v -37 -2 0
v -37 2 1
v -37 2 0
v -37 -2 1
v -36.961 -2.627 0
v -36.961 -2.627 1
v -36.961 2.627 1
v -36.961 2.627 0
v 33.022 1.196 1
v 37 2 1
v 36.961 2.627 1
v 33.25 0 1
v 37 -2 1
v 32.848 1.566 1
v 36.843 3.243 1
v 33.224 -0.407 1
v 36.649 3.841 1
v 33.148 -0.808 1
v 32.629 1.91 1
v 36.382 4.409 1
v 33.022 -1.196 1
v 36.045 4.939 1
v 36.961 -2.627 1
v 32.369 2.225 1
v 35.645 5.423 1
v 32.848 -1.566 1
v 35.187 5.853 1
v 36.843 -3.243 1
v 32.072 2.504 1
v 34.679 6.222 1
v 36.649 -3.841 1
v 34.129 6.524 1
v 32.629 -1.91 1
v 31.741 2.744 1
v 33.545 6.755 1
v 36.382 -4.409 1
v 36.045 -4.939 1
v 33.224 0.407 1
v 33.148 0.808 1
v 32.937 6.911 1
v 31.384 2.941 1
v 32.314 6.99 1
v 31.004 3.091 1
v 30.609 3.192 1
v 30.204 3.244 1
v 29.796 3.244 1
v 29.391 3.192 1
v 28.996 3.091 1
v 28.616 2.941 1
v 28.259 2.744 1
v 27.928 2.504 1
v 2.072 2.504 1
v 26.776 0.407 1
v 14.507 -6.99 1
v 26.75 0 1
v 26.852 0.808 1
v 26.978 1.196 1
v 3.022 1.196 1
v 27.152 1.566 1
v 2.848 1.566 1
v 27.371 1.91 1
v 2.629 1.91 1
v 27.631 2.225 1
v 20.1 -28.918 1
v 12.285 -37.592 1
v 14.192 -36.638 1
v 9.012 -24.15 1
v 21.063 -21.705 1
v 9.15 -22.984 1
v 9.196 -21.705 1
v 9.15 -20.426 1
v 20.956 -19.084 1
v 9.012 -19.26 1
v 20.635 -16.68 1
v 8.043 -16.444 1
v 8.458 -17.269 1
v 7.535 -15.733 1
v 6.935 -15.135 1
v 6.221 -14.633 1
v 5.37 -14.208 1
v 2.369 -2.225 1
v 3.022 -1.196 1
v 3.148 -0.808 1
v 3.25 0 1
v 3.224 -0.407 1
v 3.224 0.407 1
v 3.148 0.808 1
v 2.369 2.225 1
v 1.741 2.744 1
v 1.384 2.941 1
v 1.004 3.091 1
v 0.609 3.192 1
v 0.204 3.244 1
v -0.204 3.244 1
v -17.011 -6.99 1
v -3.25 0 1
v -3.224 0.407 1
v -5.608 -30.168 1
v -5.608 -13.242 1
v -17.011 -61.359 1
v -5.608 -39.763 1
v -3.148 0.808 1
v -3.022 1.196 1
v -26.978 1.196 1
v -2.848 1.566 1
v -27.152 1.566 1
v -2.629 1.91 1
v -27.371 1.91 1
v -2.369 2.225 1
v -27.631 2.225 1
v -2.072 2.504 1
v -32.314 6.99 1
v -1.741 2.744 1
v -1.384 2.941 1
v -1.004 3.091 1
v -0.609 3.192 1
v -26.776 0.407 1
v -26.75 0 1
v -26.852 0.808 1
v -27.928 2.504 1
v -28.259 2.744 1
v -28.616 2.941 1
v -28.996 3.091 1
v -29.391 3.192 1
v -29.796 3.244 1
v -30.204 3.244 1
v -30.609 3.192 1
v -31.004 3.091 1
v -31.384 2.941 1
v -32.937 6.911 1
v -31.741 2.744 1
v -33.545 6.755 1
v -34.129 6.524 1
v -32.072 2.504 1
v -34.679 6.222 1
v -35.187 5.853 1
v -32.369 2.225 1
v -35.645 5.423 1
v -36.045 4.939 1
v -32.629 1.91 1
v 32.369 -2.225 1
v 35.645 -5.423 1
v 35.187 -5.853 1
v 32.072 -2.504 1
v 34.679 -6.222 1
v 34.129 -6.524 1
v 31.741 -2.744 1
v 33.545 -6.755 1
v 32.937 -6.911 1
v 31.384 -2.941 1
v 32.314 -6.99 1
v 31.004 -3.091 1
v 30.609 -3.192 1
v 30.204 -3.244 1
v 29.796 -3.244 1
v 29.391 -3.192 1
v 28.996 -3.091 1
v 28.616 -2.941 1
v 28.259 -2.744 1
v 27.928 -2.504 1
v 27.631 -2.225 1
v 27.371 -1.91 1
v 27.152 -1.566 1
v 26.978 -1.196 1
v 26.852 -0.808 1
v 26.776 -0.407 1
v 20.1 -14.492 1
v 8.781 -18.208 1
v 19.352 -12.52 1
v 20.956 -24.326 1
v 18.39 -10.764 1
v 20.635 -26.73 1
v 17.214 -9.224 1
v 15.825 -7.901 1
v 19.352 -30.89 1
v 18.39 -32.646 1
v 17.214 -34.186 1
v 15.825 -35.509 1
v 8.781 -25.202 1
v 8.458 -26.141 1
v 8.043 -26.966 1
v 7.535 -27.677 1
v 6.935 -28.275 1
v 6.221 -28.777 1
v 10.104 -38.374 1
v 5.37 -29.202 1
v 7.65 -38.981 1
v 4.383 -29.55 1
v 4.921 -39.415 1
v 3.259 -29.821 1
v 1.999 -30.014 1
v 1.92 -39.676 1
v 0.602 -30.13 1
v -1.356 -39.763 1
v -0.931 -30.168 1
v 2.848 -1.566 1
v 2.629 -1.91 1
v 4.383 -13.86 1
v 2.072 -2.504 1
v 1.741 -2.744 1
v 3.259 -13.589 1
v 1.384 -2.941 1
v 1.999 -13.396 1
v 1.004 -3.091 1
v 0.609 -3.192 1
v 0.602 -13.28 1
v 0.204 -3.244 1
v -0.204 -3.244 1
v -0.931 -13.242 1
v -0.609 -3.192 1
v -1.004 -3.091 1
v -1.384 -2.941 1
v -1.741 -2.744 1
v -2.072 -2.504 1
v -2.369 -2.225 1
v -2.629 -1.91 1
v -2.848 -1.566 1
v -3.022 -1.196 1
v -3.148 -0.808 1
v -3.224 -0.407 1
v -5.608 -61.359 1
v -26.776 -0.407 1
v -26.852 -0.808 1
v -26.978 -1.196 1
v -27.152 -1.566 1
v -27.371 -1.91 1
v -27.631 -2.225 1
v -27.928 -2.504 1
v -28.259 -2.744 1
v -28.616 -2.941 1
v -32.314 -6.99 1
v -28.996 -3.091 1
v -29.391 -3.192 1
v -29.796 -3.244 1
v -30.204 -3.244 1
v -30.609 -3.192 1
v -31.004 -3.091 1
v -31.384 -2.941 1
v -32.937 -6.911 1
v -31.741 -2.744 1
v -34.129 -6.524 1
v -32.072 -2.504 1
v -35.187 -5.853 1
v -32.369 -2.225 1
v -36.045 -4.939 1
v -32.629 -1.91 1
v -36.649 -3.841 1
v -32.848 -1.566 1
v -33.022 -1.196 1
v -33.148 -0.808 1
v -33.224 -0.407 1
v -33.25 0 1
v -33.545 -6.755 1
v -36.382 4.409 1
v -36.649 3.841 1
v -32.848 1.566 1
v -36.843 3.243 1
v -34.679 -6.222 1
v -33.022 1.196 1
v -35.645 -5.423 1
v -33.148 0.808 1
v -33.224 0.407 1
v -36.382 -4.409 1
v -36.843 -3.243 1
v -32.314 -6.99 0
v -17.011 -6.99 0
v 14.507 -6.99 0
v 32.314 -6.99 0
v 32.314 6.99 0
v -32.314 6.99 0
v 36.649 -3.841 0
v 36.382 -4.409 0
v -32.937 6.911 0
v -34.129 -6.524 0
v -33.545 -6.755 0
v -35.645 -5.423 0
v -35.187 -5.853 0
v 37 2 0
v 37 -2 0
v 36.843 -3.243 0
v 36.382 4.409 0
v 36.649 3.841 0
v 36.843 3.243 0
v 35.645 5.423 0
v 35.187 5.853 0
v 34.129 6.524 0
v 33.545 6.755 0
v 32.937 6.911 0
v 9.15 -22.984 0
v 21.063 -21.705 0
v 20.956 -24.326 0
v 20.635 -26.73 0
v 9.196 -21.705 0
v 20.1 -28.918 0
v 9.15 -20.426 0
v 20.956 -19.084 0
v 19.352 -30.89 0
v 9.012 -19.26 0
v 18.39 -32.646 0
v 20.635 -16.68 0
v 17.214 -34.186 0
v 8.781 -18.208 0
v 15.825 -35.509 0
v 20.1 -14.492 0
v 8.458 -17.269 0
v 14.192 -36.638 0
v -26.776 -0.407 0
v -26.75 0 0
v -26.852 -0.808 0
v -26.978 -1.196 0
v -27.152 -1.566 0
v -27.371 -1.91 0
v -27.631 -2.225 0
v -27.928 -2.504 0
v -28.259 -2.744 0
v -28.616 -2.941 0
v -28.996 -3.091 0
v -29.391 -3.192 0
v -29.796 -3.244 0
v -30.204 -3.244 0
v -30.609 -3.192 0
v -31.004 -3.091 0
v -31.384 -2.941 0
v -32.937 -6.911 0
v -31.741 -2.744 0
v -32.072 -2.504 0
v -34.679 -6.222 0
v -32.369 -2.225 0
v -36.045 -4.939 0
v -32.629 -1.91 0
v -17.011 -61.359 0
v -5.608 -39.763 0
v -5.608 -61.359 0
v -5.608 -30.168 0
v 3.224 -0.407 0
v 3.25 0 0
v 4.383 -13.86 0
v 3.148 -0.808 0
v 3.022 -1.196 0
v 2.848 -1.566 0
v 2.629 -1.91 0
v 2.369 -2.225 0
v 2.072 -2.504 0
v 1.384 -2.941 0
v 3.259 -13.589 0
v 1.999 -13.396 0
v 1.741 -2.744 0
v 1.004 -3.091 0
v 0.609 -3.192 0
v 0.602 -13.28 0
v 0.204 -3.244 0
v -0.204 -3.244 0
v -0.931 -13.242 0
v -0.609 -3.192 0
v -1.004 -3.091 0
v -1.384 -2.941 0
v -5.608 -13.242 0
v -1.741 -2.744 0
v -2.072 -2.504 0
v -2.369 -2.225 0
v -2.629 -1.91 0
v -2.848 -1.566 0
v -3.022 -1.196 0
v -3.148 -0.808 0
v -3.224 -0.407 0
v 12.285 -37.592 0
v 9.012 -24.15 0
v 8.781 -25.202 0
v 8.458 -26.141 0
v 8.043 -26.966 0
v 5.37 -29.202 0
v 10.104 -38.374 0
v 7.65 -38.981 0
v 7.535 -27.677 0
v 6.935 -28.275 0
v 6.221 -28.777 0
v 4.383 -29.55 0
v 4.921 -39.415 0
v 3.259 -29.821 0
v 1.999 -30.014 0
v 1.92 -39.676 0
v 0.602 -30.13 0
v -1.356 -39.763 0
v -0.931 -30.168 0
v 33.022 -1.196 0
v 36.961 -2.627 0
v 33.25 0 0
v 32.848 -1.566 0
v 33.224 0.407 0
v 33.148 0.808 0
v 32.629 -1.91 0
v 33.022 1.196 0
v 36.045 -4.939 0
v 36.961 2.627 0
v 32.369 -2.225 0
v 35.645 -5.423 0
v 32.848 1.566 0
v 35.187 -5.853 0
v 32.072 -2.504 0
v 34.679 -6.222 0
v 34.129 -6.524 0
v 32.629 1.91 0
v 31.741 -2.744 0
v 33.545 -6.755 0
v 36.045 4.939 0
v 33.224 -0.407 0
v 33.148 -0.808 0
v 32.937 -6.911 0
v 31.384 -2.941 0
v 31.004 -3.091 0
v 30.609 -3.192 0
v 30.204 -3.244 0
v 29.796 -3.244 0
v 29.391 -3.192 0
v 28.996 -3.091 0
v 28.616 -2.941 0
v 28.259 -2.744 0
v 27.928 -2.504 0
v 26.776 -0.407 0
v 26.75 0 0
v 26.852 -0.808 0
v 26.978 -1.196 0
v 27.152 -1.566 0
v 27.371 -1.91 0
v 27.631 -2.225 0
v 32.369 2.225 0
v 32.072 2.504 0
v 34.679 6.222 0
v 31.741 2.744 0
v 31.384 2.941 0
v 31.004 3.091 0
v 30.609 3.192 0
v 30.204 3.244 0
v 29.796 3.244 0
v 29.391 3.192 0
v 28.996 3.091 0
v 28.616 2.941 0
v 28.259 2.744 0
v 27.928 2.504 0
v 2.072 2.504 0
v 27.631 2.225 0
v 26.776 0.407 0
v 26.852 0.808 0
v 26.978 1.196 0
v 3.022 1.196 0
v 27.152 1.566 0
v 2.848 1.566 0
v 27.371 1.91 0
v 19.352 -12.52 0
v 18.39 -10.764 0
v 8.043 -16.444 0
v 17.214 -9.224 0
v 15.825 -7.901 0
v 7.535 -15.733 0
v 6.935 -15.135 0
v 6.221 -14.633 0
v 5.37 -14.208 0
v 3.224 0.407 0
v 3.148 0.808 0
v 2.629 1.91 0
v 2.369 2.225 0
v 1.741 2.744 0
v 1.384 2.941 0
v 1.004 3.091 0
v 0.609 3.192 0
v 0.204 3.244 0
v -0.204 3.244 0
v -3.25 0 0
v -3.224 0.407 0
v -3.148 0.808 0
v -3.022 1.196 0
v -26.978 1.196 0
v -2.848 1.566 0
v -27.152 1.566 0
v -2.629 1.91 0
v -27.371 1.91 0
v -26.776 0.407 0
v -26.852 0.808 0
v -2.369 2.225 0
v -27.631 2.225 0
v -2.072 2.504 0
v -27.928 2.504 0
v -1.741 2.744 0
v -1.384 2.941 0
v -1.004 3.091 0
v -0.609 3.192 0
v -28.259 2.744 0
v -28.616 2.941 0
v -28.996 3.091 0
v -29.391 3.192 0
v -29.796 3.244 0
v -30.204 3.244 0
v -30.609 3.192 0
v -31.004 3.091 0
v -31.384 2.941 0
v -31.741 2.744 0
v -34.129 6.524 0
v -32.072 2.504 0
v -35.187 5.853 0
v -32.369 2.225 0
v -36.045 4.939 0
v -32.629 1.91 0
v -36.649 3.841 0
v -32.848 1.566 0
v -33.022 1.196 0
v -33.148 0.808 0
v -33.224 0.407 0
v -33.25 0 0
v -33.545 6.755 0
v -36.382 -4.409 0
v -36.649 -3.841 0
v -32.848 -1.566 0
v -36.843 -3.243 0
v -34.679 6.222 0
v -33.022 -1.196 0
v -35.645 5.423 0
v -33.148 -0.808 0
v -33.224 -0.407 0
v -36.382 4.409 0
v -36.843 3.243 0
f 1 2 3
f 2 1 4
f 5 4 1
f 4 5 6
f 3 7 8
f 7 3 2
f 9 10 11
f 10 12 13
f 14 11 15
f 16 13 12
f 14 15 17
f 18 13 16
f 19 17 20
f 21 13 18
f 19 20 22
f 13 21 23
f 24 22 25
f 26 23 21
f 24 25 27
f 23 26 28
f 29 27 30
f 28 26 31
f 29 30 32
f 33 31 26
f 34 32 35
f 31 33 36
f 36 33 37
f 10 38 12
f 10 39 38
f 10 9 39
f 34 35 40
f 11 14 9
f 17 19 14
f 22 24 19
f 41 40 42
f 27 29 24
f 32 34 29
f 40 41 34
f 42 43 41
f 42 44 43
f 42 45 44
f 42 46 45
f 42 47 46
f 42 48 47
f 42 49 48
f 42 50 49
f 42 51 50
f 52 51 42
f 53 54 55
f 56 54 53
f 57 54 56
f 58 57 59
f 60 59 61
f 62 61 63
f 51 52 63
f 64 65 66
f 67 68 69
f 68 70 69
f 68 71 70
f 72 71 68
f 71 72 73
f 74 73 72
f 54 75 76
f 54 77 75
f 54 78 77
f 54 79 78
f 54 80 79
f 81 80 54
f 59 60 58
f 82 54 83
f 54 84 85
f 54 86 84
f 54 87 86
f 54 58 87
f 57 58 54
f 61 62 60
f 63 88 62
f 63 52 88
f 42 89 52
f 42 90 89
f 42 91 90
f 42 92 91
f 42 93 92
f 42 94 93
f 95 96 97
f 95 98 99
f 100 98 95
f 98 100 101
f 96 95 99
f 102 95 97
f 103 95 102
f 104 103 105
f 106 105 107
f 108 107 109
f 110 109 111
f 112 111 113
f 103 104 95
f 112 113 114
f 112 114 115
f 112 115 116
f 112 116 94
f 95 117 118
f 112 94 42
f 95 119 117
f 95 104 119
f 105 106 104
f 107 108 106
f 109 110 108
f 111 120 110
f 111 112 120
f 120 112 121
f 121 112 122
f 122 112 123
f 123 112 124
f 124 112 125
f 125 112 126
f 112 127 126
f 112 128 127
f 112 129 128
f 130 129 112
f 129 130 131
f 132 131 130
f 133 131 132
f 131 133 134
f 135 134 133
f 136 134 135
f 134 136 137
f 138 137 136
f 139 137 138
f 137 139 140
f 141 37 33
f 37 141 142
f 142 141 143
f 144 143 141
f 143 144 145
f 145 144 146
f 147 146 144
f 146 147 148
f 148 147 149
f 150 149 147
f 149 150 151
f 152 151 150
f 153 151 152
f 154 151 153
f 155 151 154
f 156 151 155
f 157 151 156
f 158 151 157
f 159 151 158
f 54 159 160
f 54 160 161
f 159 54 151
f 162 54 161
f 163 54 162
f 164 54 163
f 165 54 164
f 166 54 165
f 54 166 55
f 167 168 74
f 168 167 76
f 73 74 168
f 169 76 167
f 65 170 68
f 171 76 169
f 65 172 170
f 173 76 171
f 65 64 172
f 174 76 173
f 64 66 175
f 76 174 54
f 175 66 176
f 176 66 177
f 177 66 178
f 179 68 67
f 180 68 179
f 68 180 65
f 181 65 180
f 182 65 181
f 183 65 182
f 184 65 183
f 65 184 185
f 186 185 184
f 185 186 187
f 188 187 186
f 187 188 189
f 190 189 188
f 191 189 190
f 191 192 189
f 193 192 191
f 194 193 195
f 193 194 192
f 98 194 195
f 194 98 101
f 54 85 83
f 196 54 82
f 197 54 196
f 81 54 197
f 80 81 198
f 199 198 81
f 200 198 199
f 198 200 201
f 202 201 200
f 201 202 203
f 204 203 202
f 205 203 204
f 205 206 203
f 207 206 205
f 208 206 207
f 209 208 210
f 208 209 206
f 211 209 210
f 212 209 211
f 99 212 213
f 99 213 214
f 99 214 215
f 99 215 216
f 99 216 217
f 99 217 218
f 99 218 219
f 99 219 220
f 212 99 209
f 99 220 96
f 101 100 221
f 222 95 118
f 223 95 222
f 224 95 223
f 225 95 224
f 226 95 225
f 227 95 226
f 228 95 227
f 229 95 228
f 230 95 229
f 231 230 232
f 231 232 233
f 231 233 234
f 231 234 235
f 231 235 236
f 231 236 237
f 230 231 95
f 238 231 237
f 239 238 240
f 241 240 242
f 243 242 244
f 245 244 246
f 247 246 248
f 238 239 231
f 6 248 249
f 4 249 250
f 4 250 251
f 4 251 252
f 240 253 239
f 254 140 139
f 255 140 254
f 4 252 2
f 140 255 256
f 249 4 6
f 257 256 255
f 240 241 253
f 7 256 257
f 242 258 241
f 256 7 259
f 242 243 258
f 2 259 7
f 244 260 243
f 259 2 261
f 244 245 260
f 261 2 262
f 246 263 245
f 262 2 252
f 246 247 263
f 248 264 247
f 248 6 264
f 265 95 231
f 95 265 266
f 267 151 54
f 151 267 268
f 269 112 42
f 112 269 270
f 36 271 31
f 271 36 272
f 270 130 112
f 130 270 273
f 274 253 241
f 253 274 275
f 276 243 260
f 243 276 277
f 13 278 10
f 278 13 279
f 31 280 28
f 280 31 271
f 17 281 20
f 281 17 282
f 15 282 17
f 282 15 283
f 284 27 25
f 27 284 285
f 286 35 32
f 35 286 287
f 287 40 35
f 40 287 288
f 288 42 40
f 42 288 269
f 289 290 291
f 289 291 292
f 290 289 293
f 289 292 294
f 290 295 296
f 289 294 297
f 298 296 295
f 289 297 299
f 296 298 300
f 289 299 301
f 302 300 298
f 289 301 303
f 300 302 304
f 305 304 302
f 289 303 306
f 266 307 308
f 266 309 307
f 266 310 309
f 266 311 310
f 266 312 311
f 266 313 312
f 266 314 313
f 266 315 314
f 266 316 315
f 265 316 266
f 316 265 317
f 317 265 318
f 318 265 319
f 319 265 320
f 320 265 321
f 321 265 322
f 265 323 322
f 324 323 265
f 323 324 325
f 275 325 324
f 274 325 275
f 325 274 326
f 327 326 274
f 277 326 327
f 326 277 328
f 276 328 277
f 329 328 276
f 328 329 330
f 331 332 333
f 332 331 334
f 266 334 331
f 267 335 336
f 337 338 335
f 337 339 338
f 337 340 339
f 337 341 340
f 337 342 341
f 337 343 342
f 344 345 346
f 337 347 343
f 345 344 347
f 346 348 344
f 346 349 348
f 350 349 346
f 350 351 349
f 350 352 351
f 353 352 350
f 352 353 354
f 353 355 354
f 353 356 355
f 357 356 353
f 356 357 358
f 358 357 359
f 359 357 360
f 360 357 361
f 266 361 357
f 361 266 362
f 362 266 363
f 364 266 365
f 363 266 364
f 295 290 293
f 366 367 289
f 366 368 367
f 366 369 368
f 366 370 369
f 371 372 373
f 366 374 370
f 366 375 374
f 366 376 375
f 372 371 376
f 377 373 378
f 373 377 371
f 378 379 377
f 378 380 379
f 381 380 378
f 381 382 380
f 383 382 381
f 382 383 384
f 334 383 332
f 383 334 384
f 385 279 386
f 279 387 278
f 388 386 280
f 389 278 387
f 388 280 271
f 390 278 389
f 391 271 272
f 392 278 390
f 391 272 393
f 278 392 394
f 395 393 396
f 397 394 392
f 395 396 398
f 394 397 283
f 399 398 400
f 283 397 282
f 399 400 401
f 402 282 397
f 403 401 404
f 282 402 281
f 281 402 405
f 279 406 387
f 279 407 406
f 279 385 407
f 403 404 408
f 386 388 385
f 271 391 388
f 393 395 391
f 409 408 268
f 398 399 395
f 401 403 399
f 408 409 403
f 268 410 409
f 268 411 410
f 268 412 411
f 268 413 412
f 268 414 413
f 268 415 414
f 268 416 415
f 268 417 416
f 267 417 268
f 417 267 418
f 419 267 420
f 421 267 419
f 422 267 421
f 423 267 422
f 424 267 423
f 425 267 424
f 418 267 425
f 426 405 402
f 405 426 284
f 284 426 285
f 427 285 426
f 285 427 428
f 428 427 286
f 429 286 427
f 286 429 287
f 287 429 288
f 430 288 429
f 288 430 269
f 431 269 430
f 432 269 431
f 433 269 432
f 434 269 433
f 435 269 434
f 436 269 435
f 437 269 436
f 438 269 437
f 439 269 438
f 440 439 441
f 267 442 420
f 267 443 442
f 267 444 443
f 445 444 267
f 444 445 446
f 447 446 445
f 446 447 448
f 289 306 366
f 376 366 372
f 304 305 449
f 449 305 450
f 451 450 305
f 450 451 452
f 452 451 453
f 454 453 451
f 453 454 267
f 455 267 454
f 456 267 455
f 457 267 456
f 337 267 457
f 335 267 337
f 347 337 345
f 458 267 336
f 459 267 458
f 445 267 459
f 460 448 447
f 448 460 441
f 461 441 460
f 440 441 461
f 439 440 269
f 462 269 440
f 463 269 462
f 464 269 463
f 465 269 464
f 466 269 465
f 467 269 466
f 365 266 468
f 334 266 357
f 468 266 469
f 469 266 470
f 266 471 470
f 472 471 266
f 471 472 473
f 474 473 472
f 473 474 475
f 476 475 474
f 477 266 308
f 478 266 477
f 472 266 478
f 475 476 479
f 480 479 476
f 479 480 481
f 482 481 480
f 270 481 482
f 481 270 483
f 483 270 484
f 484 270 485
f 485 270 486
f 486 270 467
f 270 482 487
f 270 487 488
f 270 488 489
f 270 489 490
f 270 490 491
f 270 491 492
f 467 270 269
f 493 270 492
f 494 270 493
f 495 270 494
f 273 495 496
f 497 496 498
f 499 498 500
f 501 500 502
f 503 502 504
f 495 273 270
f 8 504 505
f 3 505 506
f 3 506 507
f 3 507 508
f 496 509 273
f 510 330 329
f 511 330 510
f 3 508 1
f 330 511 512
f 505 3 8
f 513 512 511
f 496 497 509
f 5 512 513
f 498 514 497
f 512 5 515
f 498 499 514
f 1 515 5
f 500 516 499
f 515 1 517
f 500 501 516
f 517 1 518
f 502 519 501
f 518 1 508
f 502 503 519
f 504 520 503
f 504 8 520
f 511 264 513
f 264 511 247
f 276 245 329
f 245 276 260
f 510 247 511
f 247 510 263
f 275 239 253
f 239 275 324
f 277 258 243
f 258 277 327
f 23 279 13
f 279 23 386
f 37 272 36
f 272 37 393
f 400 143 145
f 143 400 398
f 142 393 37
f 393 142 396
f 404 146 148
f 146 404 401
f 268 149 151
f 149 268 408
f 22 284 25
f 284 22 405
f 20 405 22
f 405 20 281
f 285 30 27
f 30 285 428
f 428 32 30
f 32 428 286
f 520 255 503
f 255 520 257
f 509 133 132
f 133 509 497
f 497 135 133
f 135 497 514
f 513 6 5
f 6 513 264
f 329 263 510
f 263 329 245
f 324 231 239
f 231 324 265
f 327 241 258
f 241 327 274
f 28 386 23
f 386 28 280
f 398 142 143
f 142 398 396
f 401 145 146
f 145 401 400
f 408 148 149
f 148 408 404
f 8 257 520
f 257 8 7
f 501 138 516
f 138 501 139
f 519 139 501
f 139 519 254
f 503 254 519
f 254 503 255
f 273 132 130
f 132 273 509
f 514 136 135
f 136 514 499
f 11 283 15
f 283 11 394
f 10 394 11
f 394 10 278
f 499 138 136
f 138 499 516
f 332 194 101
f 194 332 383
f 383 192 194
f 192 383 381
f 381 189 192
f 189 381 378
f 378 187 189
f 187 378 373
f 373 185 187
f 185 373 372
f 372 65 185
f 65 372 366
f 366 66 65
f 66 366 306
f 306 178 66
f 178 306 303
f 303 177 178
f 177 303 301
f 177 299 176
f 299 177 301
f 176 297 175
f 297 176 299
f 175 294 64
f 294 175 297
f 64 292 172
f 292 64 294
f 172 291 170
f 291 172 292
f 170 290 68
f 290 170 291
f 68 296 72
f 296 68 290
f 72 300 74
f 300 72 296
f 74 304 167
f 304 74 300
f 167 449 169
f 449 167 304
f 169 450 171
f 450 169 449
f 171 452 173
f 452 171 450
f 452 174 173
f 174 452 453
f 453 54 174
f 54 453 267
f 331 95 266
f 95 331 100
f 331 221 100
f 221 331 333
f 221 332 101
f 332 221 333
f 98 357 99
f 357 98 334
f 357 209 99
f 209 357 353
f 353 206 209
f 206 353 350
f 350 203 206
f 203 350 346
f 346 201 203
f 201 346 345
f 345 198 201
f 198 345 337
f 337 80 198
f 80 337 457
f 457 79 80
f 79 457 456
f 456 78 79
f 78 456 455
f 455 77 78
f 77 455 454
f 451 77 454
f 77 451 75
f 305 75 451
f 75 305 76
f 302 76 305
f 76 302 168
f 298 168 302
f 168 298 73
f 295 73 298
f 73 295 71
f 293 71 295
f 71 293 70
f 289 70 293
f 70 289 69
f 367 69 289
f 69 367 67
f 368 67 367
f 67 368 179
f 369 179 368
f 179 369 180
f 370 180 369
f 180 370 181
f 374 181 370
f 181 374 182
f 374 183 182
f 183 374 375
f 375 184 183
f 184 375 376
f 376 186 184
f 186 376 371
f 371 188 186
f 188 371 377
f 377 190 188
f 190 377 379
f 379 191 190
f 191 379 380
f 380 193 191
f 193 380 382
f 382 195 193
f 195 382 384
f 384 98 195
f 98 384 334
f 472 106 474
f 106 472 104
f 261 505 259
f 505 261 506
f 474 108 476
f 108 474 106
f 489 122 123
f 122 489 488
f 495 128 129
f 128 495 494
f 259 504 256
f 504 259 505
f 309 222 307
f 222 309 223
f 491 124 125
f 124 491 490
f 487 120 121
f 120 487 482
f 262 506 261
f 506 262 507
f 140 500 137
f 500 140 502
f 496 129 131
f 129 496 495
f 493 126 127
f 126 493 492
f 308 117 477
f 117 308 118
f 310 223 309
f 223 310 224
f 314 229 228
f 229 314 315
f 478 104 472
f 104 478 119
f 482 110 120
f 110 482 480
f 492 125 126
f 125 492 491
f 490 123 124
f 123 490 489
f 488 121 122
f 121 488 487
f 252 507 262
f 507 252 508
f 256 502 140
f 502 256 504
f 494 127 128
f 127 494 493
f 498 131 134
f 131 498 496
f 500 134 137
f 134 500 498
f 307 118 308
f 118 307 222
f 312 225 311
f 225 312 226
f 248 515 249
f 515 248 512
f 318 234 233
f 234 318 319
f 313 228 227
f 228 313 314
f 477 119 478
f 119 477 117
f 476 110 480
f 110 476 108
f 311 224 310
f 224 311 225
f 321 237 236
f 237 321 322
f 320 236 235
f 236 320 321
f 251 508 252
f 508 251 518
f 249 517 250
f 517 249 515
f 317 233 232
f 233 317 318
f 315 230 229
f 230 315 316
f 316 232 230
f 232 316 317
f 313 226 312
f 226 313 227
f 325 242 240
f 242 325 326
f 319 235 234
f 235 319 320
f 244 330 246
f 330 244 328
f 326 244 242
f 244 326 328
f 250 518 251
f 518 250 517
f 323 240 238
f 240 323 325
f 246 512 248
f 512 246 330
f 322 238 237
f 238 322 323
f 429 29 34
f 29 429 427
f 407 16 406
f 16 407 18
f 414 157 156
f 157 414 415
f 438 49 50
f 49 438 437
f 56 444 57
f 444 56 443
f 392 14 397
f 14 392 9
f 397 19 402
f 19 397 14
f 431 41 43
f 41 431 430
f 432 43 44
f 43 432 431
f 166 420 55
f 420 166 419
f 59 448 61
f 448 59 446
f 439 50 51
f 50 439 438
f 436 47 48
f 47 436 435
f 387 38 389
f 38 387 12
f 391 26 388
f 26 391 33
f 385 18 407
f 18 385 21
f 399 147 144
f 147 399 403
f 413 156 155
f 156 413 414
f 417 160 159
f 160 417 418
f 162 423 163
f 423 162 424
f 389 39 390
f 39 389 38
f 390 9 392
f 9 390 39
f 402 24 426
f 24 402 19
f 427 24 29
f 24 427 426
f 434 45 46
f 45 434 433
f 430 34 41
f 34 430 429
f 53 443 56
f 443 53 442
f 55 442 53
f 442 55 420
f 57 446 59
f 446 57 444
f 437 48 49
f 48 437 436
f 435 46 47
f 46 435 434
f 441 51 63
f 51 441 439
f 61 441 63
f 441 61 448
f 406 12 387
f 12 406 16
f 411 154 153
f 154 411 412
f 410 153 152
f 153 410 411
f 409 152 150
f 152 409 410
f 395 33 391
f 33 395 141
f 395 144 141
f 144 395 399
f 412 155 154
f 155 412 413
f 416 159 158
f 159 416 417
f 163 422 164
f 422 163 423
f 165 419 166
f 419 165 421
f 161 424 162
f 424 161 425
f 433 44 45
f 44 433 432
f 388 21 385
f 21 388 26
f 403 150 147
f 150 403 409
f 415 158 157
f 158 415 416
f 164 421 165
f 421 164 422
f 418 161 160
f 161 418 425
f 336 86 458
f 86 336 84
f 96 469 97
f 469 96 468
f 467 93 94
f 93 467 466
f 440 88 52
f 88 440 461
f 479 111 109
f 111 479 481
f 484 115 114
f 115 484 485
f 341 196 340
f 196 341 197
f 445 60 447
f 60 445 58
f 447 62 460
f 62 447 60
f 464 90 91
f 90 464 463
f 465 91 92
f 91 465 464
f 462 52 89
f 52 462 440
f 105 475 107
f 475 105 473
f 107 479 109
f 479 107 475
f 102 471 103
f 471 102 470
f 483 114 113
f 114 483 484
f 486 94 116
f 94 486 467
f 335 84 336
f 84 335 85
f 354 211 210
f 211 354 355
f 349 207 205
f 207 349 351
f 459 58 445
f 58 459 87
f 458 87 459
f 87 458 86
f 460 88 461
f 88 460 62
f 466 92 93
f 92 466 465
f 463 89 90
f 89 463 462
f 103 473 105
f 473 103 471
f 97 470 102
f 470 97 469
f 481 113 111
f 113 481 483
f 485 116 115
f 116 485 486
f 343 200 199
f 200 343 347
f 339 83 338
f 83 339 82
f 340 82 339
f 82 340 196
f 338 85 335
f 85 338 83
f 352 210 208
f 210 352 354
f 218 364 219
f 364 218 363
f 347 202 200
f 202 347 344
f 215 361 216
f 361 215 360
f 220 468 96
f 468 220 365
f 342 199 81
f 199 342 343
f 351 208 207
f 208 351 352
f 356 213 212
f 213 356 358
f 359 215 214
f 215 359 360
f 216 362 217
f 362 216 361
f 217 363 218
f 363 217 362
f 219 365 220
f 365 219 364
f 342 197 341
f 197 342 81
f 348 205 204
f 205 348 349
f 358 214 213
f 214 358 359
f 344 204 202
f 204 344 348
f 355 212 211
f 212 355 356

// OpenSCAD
$fn = 50;


difference() {
	union() {
		translate(v = [0, 0, 0]) {
			rotate(a = [0, 0, 0]) {
				hull() {
					translate(v = [-32.0000000000, 2.0000000000, 0]) {
						rotate(a = [0, 0, 0]) {
							translate(v = [0, 0, 0]) {
								rotate(a = [0, 0, 0]) {
									cylinder(h = 1, r = 5);
								}
							}
						}
					}
					translate(v = [32.0000000000, 2.0000000000, 0]) {
						rotate(a = [0, 0, 0]) {
							translate(v = [0, 0, 0]) {
								rotate(a = [0, 0, 0]) {
									cylinder(h = 1, r = 5);
								}
							}
						}
					}
					translate(v = [-32.0000000000, -2.0000000000, 0]) {
						rotate(a = [0, 0, 0]) {
							translate(v = [0, 0, 0]) {
								rotate(a = [0, 0, 0]) {
									cylinder(h = 1, r = 5);
								}
							}
						}
					}
					translate(v = [32.0000000000, -2.0000000000, 0]) {
						rotate(a = [0, 0, 0]) {
							translate(v = [0, 0, 0]) {
								rotate(a = [0, 0, 0]) {
									cylinder(h = 1, r = 5);
								}
							}
						}
					}
				}
			}
		}
		translate(v = [0, -5, 0]) {
			rotate(a = [0, 0, 0]) {
				linear_extrude(height = 1) {
					text(font = "DejaVu Sans Mono:style=Bold", halign = "center", size = 57.0000000000, text = "P", valign = "top");
				}
			}
		}
	}
	union() {
		translate(v = [-30.0000000000, 0.0000000000, -125.0000000000]) {
			rotate(a = [0, 0, 0]) {
				cylinder(h = 250, r = 3.2500000000);
			}
		}
		translate(v = [30.0000000000, 0.0000000000, -125.0000000000]) {
			rotate(a = [0, 0, 0]) {
				cylinder(h = 250, r = 3.2500000000);
			}
		}
		translate(v = [30.0000000000, 0.0000000000, -125.0000000000]) {
			rotate(a = [0, 0, 0]) {
				cylinder(h = 250, r = 3.2500000000);
			}
		}
		translate(v = [0, 0, -125.0000000000]) {
			rotate(a = [0, 0, 0]) {
				cylinder(h = 250, r = 3.2500000000);
			}
		}
	}
}
